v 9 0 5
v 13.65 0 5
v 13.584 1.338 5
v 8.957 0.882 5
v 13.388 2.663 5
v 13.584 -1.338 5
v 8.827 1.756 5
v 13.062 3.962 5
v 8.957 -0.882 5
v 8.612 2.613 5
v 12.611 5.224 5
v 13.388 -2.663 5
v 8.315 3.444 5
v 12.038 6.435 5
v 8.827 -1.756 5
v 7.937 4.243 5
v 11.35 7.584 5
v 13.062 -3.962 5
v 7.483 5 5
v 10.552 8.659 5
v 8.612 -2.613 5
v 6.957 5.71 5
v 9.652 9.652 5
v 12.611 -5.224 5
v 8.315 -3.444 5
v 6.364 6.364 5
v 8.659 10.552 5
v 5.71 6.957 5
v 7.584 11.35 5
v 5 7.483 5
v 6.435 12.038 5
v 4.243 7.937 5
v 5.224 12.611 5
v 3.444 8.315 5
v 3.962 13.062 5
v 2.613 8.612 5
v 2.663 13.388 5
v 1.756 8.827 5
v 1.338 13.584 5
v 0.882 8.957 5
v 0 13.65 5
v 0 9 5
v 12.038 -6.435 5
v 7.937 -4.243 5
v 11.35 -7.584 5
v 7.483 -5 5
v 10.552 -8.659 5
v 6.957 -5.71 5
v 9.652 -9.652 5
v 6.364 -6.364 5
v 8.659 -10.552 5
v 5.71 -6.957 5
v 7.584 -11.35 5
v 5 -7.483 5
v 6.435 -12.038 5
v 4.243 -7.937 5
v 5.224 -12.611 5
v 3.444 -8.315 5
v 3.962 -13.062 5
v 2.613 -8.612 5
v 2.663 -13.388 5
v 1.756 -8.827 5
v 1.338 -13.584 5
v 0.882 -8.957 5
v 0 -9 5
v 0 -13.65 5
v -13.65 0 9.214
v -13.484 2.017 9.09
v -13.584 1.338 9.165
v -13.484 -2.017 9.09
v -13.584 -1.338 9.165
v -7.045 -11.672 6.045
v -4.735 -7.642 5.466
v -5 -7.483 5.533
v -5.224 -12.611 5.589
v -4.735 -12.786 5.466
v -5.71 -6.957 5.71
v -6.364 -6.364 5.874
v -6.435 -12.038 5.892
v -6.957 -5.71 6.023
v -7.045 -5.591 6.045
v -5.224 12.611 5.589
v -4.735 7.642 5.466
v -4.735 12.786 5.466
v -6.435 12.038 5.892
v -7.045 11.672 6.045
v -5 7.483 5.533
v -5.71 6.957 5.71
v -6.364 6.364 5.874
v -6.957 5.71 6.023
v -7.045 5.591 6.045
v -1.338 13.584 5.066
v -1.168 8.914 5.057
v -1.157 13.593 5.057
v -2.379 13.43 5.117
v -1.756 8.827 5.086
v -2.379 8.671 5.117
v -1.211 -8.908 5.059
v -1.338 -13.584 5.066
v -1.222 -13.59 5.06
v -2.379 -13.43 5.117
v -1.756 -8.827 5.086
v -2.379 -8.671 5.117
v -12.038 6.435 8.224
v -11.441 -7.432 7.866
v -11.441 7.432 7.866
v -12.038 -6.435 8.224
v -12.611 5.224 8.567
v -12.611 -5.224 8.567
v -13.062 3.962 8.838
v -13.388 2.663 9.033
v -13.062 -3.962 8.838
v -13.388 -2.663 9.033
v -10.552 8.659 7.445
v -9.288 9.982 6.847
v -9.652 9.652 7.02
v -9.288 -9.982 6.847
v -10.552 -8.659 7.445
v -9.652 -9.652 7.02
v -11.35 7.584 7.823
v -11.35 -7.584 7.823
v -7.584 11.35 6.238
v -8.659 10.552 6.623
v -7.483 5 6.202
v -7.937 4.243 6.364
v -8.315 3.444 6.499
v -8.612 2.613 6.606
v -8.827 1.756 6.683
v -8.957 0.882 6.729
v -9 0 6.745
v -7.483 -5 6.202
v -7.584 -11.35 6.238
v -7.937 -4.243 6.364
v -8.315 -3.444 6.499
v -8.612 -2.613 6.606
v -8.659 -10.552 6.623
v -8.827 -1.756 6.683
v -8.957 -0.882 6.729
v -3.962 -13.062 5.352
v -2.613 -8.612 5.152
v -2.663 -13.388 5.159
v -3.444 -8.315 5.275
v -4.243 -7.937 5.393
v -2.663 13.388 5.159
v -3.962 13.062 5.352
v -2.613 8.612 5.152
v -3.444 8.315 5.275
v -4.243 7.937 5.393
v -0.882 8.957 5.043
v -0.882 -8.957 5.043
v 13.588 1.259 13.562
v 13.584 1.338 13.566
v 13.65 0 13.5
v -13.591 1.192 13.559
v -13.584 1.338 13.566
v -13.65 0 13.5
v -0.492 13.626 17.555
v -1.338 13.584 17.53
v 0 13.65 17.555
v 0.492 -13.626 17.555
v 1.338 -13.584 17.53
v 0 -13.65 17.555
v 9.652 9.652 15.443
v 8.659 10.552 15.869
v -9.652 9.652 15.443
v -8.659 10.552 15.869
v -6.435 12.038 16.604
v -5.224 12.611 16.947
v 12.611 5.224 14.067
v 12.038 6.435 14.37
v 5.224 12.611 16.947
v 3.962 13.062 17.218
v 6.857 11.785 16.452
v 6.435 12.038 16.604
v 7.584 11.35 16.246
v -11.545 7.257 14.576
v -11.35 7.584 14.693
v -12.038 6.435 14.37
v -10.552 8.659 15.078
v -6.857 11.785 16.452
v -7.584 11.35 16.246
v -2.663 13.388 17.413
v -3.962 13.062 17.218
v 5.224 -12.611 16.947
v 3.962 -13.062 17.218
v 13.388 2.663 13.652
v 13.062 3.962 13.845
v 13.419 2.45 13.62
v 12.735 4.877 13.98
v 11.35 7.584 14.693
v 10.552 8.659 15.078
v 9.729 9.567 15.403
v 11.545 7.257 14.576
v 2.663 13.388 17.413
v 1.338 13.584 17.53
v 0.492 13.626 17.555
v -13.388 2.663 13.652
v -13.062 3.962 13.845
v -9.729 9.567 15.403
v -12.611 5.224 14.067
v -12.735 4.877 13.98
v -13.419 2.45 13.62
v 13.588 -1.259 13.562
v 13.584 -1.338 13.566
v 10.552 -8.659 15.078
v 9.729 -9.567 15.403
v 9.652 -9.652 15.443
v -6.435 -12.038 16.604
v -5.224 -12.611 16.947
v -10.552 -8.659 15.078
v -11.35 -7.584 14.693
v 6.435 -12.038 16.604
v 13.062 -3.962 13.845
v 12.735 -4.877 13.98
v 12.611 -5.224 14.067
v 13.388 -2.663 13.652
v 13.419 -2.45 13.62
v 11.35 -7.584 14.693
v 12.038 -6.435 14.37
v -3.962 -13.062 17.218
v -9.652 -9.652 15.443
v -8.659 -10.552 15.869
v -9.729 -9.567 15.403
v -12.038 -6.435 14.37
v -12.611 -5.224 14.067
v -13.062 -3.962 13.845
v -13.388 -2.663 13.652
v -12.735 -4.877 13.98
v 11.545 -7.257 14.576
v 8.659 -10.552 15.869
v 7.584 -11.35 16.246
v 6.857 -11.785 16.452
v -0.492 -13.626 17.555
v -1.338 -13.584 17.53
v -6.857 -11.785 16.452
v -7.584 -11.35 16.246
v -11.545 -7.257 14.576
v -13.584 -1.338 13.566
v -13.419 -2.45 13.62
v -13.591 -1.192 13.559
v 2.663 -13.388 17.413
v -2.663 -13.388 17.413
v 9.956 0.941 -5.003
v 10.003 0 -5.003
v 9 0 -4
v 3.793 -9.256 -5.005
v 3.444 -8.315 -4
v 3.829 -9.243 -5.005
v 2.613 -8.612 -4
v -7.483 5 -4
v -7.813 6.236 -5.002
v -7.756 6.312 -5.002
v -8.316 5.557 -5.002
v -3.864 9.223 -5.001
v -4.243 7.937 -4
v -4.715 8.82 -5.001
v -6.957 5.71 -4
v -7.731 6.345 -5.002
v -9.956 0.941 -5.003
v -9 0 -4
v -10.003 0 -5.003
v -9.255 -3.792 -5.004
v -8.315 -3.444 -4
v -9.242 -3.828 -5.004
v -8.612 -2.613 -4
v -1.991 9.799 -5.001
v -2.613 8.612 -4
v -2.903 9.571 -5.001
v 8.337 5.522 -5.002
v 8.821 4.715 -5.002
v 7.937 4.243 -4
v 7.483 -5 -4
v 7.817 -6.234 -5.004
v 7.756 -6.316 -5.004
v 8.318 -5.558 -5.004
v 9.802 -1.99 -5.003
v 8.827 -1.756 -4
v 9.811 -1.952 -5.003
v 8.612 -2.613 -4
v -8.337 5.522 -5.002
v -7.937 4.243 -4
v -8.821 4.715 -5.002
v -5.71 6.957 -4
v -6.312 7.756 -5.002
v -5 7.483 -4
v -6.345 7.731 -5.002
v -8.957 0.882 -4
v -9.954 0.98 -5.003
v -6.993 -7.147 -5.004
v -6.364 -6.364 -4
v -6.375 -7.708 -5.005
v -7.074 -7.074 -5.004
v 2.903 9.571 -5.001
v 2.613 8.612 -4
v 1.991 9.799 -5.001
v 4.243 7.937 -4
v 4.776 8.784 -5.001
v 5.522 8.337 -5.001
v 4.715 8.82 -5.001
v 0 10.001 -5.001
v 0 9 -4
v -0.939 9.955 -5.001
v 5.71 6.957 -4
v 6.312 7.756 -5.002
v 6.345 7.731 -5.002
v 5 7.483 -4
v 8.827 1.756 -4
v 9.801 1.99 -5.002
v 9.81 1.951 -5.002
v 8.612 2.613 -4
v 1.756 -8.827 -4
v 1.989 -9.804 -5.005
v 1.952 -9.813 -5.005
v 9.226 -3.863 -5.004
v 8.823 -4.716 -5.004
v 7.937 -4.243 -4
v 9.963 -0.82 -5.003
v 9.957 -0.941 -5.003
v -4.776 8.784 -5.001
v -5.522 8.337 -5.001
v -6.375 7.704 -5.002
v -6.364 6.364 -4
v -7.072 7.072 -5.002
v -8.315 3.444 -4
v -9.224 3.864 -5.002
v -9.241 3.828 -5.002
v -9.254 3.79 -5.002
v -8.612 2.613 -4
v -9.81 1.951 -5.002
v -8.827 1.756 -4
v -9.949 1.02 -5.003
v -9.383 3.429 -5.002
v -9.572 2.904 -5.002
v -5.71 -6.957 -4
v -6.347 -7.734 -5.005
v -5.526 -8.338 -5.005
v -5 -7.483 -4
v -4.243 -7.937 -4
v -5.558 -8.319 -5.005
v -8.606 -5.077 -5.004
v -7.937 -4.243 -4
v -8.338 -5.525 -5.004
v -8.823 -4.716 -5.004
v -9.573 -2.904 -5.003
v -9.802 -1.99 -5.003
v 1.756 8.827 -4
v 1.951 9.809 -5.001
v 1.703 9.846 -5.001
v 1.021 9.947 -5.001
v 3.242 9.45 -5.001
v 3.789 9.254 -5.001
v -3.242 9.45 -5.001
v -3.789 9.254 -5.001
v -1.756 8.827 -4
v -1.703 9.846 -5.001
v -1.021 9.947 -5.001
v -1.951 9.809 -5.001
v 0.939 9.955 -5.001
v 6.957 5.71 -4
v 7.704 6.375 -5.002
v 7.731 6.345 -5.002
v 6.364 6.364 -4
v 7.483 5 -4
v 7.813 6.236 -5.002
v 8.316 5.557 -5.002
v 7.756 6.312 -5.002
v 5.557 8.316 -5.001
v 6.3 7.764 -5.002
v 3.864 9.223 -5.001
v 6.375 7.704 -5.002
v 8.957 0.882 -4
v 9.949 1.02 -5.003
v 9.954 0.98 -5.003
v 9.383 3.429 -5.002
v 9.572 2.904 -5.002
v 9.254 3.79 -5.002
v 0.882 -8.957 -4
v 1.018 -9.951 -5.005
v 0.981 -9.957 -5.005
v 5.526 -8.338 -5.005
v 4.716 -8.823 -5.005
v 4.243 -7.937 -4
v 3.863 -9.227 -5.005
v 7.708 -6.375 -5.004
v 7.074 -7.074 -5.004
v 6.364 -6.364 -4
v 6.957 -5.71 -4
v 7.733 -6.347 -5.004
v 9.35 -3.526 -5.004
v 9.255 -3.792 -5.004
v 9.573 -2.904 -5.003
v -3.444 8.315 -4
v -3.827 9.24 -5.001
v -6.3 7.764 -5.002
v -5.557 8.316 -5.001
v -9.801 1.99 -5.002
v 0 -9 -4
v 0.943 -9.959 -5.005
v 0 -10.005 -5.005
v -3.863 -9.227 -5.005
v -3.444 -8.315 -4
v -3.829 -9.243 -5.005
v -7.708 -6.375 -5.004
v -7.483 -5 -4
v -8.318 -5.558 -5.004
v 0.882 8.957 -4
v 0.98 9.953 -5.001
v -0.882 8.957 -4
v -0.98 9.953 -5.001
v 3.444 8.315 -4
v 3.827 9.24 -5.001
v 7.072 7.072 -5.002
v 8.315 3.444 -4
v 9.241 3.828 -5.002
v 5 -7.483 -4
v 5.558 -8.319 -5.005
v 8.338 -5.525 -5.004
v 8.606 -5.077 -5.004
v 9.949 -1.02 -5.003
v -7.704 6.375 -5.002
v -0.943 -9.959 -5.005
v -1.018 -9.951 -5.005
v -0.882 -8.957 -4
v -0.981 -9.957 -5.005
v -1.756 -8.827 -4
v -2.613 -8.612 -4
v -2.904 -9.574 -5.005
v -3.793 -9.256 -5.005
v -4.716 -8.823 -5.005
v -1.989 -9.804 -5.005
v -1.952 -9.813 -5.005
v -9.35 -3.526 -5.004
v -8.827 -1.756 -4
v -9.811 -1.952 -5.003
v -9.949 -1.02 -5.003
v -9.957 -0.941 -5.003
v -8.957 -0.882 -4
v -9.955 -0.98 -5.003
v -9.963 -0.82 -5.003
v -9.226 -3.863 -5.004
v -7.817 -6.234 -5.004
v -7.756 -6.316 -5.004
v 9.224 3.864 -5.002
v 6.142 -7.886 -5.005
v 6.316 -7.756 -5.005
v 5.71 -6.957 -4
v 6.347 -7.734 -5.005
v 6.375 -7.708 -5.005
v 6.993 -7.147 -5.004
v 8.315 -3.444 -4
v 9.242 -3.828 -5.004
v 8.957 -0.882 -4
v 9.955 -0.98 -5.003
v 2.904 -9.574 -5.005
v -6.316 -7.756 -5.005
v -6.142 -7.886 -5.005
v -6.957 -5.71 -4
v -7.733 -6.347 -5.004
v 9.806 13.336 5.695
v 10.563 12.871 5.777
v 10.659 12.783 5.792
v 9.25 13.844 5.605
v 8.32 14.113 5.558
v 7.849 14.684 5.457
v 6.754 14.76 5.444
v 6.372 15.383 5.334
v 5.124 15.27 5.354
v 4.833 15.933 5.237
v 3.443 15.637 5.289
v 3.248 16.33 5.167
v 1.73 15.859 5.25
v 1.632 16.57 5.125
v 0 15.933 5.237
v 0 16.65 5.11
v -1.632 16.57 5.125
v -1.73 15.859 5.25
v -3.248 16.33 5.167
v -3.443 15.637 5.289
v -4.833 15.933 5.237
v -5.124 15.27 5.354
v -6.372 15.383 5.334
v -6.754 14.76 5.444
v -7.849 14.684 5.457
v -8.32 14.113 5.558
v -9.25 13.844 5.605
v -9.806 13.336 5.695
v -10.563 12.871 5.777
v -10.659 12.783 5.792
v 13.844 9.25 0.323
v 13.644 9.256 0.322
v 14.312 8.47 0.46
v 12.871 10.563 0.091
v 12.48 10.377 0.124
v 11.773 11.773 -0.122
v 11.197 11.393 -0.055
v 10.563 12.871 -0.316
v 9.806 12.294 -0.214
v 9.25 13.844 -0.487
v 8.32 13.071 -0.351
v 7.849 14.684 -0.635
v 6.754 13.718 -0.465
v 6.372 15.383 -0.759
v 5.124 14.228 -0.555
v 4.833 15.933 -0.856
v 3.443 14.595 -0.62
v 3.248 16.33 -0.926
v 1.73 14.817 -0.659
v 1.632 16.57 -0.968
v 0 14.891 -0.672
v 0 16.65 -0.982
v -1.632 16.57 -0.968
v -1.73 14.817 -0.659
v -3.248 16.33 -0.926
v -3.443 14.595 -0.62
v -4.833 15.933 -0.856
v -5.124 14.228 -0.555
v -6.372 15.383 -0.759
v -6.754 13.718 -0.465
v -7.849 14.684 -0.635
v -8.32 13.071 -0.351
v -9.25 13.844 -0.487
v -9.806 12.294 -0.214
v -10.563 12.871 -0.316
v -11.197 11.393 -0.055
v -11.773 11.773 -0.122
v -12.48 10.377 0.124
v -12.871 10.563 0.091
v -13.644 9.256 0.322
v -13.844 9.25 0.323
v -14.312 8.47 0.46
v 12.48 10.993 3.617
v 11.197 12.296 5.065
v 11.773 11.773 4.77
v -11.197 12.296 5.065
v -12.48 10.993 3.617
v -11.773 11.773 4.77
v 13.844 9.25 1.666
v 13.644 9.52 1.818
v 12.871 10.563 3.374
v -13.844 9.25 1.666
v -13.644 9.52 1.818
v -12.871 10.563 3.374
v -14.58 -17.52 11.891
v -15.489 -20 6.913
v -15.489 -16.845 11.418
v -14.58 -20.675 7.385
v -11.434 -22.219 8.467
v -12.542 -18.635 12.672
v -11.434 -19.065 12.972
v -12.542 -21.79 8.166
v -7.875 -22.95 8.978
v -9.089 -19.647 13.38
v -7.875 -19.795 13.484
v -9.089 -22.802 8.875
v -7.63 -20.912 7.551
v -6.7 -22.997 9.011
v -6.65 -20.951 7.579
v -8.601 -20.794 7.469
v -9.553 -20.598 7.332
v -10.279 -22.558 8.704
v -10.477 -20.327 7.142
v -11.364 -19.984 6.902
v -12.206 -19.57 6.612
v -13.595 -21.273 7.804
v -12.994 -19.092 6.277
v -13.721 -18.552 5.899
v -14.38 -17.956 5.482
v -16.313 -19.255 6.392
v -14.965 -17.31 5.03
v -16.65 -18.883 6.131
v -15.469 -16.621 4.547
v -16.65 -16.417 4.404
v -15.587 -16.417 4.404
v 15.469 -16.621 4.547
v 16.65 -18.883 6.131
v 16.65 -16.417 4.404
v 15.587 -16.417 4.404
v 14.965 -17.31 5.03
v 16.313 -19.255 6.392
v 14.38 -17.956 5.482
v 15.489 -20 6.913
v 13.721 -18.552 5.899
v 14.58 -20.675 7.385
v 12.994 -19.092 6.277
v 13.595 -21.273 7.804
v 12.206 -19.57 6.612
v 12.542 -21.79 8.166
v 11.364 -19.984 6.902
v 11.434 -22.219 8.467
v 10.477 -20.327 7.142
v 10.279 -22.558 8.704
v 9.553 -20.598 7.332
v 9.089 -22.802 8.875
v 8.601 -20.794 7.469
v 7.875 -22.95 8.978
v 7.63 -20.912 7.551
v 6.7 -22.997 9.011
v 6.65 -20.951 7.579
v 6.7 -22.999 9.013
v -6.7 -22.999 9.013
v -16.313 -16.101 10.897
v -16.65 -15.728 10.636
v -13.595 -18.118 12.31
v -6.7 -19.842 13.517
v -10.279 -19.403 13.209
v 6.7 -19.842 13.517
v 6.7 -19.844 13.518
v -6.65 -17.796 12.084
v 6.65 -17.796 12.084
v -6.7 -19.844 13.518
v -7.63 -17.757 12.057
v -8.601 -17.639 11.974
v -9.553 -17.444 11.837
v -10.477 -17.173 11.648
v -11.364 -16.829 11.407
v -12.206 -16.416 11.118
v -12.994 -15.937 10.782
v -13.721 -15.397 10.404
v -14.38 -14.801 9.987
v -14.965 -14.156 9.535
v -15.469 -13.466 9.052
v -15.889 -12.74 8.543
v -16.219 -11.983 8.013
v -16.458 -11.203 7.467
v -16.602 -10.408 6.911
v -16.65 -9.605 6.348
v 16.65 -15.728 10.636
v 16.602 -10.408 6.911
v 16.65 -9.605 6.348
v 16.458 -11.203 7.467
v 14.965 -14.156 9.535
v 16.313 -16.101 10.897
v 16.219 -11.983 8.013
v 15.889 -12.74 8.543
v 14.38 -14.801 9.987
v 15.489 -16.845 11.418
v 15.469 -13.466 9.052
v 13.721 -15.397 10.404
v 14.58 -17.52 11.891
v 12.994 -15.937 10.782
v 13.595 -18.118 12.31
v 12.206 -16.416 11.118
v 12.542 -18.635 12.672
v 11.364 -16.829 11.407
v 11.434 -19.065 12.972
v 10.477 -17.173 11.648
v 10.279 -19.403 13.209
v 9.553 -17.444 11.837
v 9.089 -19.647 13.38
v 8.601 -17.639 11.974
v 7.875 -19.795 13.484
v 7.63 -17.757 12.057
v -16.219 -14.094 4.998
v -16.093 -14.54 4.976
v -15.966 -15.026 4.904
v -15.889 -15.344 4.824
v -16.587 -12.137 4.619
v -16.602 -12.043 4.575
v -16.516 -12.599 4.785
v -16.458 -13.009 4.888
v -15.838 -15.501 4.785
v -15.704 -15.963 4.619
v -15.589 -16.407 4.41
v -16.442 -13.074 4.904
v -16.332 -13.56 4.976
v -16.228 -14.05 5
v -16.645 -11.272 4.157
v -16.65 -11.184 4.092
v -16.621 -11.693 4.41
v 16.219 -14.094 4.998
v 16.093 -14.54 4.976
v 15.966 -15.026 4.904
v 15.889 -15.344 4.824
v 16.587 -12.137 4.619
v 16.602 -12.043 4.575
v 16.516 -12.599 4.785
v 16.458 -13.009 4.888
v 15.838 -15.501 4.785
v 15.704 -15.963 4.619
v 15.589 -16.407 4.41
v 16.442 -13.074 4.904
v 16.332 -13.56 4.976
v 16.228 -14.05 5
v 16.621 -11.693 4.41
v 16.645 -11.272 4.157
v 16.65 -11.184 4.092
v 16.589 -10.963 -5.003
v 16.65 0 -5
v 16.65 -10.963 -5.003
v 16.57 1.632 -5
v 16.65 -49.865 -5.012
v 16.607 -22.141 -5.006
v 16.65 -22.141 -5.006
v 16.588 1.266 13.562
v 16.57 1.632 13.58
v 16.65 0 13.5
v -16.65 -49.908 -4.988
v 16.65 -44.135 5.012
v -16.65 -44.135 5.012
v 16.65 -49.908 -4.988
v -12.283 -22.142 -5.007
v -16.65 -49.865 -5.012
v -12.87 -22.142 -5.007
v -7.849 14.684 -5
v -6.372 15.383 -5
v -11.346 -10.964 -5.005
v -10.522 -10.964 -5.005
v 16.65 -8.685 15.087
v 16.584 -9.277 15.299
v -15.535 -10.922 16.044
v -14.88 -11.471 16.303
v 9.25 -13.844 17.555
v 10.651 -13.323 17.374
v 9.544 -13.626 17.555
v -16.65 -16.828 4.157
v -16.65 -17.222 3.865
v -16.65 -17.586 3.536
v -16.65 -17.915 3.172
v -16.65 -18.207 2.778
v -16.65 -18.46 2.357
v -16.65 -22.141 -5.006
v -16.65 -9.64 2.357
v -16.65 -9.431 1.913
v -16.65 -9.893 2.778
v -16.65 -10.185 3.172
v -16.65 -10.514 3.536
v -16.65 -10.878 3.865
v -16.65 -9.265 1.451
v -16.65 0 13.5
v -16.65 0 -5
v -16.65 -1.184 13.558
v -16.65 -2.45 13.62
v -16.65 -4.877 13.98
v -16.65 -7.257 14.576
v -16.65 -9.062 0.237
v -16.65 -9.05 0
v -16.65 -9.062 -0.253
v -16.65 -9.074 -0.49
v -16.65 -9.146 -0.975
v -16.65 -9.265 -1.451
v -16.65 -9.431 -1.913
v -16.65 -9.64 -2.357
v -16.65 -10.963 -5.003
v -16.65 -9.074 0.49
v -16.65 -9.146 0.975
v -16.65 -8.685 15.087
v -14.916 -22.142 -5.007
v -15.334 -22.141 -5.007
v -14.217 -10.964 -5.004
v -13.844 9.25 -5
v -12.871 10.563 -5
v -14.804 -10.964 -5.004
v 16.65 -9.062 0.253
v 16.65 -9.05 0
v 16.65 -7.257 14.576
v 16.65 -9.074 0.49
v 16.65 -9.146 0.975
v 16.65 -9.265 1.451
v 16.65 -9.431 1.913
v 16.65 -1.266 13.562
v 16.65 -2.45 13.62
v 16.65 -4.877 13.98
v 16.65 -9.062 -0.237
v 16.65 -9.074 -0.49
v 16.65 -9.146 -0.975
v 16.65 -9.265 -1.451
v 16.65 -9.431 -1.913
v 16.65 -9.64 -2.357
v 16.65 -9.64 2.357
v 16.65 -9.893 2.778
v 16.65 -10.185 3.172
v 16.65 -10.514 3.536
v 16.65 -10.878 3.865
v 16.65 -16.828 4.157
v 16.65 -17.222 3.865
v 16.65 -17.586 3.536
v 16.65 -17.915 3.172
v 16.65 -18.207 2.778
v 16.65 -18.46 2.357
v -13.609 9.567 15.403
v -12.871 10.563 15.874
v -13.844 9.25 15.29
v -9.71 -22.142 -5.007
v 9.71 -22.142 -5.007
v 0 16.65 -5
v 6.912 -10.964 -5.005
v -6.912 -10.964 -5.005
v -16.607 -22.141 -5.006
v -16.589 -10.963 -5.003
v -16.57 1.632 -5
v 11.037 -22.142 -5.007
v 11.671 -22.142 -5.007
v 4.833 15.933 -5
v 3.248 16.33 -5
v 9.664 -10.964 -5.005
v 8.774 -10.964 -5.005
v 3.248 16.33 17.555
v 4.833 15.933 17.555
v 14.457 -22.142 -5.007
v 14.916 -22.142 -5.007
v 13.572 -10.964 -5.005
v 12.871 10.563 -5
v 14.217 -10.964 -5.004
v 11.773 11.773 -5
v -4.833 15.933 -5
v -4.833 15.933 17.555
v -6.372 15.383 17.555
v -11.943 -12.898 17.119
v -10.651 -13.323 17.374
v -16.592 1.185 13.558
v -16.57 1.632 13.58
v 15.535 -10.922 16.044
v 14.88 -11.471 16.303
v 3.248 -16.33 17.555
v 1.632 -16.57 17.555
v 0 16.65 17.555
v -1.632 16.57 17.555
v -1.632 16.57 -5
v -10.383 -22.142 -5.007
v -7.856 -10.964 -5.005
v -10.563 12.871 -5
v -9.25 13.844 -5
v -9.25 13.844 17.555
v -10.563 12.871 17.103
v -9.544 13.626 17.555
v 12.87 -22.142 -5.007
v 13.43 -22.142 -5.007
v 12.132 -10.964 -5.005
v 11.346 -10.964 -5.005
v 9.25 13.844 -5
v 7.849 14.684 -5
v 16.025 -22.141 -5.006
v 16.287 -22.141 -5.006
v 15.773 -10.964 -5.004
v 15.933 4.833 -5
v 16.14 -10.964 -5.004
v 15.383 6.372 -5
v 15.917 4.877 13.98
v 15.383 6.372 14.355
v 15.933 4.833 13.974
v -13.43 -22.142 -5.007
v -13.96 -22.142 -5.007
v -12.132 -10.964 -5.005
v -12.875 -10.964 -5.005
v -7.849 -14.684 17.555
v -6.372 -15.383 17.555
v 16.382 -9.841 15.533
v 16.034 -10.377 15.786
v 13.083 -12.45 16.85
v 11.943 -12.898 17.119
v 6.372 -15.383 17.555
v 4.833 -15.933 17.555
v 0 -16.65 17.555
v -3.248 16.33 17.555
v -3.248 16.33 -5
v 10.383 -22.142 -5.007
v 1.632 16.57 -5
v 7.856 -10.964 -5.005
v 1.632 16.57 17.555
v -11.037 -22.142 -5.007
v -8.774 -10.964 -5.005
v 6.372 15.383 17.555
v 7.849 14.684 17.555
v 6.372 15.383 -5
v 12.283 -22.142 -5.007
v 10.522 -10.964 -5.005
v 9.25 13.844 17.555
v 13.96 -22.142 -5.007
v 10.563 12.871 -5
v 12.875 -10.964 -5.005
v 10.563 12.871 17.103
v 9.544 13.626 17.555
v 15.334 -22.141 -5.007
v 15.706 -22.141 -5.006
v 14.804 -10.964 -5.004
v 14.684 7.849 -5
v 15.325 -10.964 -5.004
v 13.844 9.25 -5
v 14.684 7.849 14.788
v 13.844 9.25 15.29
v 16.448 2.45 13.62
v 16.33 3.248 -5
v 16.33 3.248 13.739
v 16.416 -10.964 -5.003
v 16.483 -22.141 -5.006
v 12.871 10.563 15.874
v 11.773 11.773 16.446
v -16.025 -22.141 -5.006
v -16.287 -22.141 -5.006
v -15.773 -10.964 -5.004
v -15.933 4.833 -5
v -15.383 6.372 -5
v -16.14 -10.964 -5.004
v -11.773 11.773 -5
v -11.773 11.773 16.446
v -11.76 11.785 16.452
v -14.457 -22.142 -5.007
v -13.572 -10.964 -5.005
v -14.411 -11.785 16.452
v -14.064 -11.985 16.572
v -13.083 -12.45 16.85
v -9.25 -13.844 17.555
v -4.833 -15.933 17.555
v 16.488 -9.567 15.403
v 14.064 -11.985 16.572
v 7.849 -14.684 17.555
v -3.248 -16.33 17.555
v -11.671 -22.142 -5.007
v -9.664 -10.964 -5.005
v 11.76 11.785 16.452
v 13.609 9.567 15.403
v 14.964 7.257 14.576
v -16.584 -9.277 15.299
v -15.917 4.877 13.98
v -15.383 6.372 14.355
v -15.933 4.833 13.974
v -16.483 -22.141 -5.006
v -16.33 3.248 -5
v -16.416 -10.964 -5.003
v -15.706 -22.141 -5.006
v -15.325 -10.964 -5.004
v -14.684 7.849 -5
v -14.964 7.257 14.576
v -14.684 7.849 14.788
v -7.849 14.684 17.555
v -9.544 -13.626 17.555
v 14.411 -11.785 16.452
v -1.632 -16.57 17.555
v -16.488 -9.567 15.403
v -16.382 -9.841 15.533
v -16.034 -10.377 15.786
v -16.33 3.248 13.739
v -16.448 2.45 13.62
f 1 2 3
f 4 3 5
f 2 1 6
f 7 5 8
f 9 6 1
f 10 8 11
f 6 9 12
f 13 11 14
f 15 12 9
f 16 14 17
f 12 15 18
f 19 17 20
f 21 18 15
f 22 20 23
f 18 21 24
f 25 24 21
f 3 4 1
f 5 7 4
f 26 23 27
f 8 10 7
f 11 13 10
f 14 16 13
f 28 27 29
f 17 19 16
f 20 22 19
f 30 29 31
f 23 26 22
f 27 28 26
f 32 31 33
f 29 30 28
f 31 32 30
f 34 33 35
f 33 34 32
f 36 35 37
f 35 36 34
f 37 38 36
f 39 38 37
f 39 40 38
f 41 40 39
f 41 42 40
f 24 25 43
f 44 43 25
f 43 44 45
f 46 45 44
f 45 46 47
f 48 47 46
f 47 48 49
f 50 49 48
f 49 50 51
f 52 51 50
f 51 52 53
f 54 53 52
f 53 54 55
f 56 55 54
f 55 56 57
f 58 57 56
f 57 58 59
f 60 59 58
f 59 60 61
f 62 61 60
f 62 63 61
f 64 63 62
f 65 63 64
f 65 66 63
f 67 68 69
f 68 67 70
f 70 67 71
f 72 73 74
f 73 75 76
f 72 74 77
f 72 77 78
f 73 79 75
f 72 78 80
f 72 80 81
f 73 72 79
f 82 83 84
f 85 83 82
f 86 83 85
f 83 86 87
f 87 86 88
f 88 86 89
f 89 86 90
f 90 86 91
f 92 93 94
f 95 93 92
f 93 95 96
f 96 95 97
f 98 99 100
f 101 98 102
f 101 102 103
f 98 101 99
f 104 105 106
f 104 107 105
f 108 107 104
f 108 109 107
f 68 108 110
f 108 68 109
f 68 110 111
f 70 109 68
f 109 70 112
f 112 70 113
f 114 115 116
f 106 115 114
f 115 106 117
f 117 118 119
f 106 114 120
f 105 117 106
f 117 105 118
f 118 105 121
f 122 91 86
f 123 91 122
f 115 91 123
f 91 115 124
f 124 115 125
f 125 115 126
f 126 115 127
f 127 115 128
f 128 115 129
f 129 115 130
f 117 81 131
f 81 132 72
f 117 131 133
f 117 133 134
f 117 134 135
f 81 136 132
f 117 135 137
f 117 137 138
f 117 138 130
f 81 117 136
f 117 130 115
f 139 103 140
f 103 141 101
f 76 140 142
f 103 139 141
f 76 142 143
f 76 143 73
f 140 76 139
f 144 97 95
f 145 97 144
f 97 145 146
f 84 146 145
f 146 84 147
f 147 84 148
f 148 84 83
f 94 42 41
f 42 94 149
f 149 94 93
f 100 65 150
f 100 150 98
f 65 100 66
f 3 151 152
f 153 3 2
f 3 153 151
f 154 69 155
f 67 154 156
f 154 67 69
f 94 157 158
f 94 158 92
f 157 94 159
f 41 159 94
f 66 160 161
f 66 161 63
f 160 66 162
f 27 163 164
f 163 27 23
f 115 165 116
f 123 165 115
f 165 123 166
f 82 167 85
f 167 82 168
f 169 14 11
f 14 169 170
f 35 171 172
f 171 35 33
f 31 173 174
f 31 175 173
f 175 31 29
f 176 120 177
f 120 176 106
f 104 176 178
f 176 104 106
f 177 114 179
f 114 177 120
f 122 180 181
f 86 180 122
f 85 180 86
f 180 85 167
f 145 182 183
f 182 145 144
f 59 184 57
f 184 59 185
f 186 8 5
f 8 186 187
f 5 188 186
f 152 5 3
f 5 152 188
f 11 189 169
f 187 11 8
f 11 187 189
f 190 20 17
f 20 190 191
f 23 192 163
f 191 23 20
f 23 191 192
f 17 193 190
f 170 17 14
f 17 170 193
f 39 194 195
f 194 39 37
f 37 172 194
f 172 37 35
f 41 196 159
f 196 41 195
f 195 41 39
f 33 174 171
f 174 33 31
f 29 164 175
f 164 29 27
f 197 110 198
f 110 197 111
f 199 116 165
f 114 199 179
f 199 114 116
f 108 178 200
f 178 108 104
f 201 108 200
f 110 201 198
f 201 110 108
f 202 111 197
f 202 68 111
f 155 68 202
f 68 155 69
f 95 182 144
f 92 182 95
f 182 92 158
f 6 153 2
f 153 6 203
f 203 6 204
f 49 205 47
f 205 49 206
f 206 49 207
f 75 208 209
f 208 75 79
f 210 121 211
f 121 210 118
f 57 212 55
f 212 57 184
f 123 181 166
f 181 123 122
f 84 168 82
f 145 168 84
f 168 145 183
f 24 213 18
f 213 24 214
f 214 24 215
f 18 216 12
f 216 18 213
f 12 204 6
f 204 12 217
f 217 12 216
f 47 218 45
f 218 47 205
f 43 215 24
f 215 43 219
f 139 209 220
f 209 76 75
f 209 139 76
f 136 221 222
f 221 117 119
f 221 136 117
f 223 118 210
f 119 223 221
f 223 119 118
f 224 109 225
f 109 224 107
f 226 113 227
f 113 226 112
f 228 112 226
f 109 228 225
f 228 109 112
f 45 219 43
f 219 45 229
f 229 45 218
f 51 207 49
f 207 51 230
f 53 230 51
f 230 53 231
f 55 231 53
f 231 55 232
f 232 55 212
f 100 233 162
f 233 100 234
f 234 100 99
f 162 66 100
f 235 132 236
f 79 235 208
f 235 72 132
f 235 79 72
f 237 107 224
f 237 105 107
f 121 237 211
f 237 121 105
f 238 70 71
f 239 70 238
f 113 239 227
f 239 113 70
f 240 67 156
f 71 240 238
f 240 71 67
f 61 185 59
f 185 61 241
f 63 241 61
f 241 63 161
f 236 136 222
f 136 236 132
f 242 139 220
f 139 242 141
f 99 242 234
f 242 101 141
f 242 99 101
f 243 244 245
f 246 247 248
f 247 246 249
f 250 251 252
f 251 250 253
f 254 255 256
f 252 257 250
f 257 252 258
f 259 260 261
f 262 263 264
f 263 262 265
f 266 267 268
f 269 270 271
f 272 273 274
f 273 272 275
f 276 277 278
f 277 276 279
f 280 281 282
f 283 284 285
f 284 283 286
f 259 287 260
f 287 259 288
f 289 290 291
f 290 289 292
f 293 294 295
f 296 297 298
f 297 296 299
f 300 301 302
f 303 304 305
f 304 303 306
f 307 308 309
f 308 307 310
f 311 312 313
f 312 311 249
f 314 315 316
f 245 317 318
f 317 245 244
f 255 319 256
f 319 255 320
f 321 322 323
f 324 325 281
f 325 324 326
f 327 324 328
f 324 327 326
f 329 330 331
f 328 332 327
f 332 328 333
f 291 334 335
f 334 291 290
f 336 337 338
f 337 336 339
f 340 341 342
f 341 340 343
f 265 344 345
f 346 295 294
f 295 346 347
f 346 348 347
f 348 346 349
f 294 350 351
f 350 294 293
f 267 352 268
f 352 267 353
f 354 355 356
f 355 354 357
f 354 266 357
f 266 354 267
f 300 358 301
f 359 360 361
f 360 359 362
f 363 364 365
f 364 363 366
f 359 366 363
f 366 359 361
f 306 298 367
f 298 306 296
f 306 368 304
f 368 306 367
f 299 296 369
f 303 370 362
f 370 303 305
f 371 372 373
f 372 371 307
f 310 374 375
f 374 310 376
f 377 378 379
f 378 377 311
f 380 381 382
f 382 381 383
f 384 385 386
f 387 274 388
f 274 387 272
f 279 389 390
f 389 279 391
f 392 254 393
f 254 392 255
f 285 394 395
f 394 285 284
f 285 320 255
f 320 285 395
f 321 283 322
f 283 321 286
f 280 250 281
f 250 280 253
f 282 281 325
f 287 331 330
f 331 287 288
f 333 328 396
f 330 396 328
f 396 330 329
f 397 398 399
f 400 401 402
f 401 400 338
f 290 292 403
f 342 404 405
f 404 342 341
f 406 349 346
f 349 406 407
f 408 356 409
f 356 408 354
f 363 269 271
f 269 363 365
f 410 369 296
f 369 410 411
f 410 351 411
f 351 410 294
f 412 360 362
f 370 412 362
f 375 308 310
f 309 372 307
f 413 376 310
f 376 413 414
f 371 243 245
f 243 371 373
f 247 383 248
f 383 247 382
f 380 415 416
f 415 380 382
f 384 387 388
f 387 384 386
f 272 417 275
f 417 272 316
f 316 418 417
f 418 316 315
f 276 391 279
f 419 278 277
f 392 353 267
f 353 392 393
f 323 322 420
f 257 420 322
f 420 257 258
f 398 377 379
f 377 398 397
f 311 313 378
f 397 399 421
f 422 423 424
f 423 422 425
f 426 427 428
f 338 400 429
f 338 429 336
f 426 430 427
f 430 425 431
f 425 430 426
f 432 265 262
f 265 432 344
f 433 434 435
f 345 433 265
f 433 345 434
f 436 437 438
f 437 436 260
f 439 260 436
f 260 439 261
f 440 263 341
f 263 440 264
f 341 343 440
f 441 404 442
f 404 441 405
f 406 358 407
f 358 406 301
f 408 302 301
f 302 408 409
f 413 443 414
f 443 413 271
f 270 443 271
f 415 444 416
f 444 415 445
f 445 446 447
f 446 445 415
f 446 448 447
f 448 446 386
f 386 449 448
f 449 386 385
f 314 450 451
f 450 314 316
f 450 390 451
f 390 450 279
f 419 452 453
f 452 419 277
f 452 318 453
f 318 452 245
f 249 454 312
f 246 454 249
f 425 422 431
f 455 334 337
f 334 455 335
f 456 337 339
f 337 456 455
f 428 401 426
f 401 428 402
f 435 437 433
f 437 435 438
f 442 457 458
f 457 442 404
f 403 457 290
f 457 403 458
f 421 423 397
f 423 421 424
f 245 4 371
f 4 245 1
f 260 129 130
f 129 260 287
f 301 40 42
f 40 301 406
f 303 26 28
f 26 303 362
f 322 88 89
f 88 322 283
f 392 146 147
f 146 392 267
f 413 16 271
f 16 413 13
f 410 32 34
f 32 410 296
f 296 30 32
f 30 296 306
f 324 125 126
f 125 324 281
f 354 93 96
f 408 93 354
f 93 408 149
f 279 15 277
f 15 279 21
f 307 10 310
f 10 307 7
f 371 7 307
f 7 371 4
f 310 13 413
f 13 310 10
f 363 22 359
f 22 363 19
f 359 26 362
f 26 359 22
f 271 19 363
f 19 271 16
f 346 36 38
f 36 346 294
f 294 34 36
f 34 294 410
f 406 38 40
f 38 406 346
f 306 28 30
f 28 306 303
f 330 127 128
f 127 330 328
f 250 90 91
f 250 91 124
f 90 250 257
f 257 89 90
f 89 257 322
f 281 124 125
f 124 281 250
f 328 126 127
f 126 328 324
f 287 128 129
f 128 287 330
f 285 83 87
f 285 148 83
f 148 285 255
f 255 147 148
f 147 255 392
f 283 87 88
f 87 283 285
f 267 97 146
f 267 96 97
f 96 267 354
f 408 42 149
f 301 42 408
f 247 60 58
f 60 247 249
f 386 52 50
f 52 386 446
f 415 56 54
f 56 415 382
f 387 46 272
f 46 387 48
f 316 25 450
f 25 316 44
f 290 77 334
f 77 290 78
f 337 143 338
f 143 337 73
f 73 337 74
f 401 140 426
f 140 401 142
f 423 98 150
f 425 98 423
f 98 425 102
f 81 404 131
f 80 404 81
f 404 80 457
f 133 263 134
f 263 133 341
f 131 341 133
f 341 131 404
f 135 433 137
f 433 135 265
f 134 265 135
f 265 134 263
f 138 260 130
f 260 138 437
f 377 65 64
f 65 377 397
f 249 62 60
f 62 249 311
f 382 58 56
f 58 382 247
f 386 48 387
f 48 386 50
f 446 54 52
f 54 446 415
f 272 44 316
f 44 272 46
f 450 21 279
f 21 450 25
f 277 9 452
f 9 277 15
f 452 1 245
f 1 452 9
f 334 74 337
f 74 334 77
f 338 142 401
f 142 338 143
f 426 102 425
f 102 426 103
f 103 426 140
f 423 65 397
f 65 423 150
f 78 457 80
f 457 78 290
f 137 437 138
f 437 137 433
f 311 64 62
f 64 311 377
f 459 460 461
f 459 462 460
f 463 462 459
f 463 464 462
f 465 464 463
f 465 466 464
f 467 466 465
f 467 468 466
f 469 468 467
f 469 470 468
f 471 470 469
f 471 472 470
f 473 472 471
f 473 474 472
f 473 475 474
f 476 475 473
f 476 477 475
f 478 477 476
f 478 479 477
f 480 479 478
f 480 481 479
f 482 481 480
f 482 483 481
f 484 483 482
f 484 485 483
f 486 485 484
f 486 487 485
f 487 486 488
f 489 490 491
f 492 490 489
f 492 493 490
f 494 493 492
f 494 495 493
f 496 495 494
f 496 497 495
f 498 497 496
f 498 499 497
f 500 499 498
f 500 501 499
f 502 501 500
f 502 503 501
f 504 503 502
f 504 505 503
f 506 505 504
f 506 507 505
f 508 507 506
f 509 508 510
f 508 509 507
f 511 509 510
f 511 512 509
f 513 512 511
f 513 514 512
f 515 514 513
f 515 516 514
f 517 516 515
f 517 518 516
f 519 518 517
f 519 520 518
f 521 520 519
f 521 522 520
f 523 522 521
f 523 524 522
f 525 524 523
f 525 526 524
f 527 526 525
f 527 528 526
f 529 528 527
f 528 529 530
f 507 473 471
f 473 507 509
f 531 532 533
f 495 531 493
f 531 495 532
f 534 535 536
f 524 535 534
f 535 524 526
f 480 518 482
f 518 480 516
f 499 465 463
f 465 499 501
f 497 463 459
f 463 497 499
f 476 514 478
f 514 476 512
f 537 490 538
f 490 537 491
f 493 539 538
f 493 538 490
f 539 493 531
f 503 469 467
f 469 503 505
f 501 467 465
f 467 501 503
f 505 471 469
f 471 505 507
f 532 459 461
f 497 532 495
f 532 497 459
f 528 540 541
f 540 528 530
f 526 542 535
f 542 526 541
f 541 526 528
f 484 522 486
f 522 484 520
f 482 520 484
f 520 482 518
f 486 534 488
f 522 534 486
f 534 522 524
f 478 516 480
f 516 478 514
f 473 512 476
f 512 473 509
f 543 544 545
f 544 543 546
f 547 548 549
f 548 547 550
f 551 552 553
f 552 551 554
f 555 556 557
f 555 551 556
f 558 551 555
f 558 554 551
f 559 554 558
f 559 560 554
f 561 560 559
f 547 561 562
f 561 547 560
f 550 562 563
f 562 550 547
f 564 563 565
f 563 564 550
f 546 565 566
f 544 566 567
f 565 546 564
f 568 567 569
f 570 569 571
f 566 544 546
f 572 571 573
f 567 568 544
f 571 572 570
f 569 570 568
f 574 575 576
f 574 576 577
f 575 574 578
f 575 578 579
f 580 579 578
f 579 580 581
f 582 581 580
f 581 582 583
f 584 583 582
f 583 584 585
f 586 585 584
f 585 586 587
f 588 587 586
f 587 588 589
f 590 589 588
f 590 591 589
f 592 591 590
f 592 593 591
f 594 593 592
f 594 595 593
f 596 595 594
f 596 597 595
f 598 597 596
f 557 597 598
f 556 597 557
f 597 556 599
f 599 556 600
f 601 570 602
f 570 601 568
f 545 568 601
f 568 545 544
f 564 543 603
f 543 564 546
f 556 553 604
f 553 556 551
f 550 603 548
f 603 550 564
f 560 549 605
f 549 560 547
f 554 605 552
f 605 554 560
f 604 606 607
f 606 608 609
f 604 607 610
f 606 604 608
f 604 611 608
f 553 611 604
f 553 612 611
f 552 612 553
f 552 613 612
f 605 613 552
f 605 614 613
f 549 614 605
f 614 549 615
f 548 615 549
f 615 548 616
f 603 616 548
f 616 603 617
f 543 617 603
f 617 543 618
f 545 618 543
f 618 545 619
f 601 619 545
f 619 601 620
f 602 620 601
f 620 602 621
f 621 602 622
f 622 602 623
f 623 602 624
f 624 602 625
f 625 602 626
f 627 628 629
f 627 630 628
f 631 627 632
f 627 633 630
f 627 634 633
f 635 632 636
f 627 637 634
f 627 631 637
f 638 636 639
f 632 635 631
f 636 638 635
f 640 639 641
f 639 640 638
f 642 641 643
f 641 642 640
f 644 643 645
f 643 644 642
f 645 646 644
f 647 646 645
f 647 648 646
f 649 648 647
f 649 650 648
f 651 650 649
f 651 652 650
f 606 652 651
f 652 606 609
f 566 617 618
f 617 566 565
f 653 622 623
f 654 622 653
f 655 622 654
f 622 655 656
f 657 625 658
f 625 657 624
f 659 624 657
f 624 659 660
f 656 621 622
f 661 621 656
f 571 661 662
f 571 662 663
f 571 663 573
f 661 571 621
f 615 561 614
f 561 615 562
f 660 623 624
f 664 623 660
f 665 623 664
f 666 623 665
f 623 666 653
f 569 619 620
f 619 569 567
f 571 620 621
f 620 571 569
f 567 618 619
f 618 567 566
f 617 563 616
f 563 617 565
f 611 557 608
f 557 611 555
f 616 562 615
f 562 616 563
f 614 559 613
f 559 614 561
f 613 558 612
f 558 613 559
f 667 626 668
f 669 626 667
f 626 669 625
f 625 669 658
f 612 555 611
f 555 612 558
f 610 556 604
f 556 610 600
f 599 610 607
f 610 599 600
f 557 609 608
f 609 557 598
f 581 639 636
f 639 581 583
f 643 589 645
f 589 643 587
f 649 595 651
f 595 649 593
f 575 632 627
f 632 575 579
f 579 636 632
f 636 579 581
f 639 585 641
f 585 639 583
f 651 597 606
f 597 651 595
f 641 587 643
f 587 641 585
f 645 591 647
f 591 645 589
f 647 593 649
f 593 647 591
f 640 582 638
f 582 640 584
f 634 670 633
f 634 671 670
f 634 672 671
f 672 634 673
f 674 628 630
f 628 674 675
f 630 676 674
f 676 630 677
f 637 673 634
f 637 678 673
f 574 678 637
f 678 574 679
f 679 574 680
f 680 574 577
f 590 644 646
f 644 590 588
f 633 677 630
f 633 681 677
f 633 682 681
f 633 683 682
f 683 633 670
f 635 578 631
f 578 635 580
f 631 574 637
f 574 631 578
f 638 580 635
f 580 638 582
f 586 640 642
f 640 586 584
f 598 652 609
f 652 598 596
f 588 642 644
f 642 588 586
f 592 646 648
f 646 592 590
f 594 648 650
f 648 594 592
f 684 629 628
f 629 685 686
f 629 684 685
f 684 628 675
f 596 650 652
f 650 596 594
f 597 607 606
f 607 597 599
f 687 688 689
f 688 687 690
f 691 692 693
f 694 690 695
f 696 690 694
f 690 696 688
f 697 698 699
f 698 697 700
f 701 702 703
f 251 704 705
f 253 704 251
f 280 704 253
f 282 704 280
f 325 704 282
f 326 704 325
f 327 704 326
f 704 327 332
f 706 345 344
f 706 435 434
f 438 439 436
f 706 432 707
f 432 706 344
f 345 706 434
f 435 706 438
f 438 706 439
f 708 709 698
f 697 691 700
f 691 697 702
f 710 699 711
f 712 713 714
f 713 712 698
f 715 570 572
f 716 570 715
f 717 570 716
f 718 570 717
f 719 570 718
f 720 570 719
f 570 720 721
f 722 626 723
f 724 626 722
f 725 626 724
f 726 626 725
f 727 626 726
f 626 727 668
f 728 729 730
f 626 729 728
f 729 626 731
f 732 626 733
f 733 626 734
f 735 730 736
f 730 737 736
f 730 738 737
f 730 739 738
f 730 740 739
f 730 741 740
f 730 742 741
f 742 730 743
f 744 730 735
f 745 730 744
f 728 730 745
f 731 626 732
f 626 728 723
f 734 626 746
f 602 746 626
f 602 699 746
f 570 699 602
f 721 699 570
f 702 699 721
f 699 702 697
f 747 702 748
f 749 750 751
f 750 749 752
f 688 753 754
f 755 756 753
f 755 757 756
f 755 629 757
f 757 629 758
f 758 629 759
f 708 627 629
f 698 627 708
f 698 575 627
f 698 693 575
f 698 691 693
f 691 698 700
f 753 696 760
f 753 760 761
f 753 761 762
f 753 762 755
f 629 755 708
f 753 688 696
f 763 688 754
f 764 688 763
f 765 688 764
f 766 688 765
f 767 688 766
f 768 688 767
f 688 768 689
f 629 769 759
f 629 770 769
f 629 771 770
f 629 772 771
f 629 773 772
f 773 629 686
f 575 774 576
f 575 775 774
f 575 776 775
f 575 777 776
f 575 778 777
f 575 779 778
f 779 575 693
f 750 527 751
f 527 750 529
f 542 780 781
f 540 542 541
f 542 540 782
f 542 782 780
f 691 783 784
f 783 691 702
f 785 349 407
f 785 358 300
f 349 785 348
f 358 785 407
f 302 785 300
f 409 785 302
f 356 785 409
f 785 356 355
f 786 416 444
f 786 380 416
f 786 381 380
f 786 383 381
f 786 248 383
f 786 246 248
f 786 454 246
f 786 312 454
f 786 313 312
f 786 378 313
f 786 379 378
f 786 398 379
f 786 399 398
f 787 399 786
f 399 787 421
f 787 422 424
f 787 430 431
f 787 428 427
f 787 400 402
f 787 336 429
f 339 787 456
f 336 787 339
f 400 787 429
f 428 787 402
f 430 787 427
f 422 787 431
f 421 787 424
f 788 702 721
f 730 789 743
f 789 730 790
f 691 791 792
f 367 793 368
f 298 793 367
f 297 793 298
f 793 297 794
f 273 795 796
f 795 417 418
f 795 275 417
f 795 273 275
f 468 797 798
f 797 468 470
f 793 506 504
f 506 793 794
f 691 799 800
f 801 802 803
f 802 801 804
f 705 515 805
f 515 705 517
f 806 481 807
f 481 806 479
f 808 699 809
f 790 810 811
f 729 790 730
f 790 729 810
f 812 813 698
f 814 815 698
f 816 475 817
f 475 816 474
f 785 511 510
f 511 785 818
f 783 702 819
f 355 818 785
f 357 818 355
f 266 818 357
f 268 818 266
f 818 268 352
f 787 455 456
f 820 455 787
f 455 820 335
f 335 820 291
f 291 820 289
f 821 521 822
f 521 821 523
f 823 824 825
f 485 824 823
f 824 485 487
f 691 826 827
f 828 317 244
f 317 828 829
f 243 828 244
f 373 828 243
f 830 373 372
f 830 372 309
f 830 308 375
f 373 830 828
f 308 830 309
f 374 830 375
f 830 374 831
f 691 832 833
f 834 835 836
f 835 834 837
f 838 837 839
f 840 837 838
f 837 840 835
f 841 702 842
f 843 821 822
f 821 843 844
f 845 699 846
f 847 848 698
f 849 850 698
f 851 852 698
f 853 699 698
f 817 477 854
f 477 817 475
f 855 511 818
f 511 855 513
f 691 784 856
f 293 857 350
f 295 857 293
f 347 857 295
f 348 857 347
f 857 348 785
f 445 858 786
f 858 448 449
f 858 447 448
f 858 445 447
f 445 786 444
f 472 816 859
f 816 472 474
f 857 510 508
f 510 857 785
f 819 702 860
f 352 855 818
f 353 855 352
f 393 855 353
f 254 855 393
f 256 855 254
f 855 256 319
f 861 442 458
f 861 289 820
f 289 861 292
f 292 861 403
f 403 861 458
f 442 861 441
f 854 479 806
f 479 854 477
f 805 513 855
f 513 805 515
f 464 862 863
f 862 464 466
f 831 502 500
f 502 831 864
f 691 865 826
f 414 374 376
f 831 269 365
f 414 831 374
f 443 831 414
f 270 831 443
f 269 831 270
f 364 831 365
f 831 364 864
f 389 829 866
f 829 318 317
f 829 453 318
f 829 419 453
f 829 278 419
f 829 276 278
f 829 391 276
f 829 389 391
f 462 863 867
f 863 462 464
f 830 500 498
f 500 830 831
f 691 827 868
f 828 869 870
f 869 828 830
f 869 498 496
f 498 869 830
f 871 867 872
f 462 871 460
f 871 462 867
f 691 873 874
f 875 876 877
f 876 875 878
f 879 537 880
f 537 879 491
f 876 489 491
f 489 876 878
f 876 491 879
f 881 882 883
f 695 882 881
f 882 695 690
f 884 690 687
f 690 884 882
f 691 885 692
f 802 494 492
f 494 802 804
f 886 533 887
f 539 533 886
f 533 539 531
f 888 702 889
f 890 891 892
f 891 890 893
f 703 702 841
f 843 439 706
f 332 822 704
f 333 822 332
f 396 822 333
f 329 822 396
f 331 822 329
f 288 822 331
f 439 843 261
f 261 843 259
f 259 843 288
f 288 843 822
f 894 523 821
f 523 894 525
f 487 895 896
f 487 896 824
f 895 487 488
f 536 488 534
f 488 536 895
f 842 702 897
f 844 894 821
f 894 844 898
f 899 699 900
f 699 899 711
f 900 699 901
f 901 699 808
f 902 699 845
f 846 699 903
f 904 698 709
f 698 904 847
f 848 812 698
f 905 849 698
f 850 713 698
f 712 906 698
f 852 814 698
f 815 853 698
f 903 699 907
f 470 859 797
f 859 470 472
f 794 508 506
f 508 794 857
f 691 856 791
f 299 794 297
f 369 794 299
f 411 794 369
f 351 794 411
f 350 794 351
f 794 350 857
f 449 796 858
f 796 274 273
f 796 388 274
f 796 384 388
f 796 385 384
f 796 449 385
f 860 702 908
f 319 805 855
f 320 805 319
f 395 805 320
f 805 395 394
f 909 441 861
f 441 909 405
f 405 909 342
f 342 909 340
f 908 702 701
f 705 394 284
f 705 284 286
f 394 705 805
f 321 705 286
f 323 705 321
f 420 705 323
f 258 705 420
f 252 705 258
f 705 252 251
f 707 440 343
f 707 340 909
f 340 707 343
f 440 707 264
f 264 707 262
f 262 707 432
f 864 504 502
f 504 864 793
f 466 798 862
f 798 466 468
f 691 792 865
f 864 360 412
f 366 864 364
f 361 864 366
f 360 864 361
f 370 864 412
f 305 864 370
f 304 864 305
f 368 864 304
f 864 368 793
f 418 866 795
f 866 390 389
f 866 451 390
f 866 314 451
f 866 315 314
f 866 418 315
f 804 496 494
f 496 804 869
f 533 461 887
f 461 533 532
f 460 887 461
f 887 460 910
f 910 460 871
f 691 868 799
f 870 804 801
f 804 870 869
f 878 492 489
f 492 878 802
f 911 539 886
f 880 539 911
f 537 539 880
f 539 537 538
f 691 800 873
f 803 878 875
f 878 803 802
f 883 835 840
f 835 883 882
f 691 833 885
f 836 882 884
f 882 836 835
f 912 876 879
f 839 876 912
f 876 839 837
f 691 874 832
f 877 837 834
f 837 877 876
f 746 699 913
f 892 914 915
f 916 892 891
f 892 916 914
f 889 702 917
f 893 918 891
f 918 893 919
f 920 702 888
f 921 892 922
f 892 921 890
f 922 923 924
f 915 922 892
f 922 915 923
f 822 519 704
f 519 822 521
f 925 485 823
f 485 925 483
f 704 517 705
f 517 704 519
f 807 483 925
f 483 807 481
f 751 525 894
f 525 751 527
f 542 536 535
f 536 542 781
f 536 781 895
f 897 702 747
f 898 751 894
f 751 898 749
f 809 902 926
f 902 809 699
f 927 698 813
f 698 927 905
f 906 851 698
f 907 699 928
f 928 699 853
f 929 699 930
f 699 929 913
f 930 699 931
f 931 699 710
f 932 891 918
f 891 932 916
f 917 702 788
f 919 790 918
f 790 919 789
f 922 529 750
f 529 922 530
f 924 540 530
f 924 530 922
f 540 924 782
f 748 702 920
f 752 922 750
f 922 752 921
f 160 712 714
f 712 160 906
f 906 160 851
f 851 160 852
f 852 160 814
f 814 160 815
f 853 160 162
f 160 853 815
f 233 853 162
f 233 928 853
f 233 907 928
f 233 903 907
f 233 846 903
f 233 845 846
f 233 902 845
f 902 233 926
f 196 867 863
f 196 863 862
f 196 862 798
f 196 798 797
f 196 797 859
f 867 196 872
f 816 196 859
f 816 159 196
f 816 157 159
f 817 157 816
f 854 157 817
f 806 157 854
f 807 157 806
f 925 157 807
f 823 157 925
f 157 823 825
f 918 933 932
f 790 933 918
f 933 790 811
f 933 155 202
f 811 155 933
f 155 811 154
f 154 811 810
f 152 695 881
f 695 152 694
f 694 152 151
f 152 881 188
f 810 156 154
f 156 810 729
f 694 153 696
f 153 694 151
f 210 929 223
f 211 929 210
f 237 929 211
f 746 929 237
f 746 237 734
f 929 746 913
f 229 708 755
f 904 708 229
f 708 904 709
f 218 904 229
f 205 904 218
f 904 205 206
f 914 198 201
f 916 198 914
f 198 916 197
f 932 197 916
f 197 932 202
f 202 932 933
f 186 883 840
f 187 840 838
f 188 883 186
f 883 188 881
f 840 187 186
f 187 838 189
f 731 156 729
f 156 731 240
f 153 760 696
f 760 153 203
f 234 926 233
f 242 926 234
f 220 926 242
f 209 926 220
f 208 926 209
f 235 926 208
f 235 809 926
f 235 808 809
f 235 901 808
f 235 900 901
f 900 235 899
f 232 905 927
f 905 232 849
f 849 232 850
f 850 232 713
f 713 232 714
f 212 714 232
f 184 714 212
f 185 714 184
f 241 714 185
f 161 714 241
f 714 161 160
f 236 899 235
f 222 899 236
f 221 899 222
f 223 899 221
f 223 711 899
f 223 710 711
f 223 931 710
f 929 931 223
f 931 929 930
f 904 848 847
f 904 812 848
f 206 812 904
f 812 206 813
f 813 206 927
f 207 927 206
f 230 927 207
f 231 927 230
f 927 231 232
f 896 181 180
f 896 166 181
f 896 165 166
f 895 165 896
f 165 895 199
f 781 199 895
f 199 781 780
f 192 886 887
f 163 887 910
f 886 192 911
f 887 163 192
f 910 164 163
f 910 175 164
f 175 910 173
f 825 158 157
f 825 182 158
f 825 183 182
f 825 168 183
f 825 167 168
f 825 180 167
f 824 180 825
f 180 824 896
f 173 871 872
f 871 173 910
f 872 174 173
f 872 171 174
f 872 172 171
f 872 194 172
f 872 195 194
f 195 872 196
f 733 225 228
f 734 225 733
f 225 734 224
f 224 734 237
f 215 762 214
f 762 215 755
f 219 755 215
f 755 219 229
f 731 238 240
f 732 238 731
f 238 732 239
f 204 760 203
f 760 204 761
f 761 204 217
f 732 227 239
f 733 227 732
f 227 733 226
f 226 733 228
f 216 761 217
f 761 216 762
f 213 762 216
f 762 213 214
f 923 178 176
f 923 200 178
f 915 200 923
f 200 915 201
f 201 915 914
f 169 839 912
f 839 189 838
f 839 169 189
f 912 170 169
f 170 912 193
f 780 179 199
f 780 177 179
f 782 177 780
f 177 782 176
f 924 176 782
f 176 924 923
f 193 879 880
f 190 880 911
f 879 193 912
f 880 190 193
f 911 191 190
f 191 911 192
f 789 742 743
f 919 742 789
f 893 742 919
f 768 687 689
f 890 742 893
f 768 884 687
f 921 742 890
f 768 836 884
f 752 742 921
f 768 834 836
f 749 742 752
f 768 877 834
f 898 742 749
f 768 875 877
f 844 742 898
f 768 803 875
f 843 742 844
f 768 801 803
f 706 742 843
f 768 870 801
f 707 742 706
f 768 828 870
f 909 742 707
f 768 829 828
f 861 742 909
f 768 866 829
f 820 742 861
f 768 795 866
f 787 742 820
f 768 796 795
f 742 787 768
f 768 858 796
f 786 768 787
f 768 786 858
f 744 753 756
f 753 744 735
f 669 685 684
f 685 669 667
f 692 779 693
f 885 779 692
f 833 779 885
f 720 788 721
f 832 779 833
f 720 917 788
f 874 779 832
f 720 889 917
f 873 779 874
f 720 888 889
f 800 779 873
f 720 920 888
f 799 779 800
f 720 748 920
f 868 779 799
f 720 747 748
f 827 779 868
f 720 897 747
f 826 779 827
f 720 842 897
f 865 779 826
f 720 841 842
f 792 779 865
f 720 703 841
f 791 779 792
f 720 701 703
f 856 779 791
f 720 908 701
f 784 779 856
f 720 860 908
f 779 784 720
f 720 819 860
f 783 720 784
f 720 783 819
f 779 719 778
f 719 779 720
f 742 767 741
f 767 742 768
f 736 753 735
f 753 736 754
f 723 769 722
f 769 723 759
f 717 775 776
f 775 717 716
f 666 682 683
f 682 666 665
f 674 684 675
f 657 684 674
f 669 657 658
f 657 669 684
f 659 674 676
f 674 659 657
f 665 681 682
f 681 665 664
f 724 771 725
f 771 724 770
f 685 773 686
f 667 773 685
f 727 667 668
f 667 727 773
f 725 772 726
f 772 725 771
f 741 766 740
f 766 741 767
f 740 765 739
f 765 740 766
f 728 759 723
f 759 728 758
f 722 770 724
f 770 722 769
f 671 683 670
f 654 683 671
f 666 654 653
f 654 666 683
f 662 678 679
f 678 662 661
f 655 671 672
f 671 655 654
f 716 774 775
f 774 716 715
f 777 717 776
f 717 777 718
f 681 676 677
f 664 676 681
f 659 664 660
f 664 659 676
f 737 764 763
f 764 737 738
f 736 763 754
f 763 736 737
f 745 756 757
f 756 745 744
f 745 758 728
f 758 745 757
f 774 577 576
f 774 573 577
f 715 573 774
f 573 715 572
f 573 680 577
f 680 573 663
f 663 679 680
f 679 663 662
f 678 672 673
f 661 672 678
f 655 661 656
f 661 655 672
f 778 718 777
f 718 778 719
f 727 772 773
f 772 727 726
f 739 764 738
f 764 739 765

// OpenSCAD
use <utilities.scad>;

module annulus(inner_r,thickness,h){
	difference(){
		cylinder(r=inner_r+thickness,h=h);
		cylinder(r=inner_r,h=99999,center=true);
	}
}
module cable_tie(inner_r){
	annulus(inner_r+2,2,5);
}


barrel_r = 50/2; //radius of lock barrel
shroud_r = 25.1/2+0.6+0.5; //radius of rubber shroud on the lock body (generous so it doesn't snag
shroud_l = barrel_r + 8.5; //centre of barrel to end of shroud
//tapers to about 4.5 at outside edge of lock
shackle_r = 18/2;//+0.5; //radius of metal shackle (specced 18/2, got 17.5/2)
rack_r = 5; //radius of panner rack
rack_gap = 28; //width of gap between the outer bar on the rack and the other bar (or plate) used as an end-stop
t=3; //thickness of thinnest structural parts in XY
h=rack_r*2 + shroud_l - sqrt(barrel_r*barrel_r - shroud_r*shroud_r); //overall height
$fn=64;
d=0.05; //small distance

module top_holder(){
    difference(){
        hull(){
            translate([0,0,-rack_r]) cylinder(r=shroud_r+t, h=h);
            translate([0,-shackle_r-rack_r*2-rack_gap,0]) rotate([-30,0,0]) cube([2*shroud_r+2*t, d, rack_r*2/cos(30)],center=true);
        }
        
        //hole for the rubberised casing of the lock
        intersection(){
            translate([0,0,rack_r]) cylinder(r=shroud_r, h=h);
            union(){
                big_r = shroud_r/2 / sin(atan(4.0/shroud_r));
                translate([0,-shroud_r,rack_r]) cube(999);
                translate([0,0,rack_r+big_r]) rotate([90,0,0]) cylinder(r=big_r,h=999,center=true);
            }
        }
        //hole for the shackle
        translate([0,0,-rack_r]) chamfered_hole(r=shackle_r, h=h);
        
        //indent for the lock body
        translate([0,0,rack_r+shroud_l]) rotate([0,90,0]) cylinder(r=barrel_r,h=999,center=true);
        
        //indent for cable ties round the outside
        translate([0,0,rack_r]) rotate([-10,0,0]) difference(){
            translate([-99,0,-3]) cube([999,999,6]);
            resize([shroud_r+t+1,shroud_r+t-1.0,999]*2) cylinder(r=shroud_r,h=999,center=true);
        }
        //channel for cable ties through the top
        translate([0,-shackle_r-rack_r-d,0]) rotate([35,0,180]){
            roc=10;
            reflect([1,0,0]){
                translate([shroud_r+t-roc,0,rack_r-2.75]) difference(){
                    intersection(){
                        cylinder(r=roc+2.5, h=5.5);
                        cube(999);
                    }
                    cylinder(r=roc,h=999,center=true);
                }
                translate([-d,roc,rack_r-2.75]) cube([shroud_r+t-roc+2*d,2.5,5.5]);
            }
        }
        
        //rack
        translate([0, -shackle_r-rack_r-d,0]) rotate([0,90,0]){
            //rack bar, with 45 degree cut-out for entry
            hull() repeat([100,-50,0],2)cylinder(r=rack_r,h=999,center=true);
            //cable ties (optional, too small to be useful...)
            //reflect([0,0,1]) translate([0,0,shroud_r+t-3.5-2]) annulus(rack_r+2,2,3.5);
        }
        
    //rotate([0,90,0]) cylinder(r=999,h=999,$fn=4);//render a section
    }
}

//module bottom_clip(){
top_holder();  
